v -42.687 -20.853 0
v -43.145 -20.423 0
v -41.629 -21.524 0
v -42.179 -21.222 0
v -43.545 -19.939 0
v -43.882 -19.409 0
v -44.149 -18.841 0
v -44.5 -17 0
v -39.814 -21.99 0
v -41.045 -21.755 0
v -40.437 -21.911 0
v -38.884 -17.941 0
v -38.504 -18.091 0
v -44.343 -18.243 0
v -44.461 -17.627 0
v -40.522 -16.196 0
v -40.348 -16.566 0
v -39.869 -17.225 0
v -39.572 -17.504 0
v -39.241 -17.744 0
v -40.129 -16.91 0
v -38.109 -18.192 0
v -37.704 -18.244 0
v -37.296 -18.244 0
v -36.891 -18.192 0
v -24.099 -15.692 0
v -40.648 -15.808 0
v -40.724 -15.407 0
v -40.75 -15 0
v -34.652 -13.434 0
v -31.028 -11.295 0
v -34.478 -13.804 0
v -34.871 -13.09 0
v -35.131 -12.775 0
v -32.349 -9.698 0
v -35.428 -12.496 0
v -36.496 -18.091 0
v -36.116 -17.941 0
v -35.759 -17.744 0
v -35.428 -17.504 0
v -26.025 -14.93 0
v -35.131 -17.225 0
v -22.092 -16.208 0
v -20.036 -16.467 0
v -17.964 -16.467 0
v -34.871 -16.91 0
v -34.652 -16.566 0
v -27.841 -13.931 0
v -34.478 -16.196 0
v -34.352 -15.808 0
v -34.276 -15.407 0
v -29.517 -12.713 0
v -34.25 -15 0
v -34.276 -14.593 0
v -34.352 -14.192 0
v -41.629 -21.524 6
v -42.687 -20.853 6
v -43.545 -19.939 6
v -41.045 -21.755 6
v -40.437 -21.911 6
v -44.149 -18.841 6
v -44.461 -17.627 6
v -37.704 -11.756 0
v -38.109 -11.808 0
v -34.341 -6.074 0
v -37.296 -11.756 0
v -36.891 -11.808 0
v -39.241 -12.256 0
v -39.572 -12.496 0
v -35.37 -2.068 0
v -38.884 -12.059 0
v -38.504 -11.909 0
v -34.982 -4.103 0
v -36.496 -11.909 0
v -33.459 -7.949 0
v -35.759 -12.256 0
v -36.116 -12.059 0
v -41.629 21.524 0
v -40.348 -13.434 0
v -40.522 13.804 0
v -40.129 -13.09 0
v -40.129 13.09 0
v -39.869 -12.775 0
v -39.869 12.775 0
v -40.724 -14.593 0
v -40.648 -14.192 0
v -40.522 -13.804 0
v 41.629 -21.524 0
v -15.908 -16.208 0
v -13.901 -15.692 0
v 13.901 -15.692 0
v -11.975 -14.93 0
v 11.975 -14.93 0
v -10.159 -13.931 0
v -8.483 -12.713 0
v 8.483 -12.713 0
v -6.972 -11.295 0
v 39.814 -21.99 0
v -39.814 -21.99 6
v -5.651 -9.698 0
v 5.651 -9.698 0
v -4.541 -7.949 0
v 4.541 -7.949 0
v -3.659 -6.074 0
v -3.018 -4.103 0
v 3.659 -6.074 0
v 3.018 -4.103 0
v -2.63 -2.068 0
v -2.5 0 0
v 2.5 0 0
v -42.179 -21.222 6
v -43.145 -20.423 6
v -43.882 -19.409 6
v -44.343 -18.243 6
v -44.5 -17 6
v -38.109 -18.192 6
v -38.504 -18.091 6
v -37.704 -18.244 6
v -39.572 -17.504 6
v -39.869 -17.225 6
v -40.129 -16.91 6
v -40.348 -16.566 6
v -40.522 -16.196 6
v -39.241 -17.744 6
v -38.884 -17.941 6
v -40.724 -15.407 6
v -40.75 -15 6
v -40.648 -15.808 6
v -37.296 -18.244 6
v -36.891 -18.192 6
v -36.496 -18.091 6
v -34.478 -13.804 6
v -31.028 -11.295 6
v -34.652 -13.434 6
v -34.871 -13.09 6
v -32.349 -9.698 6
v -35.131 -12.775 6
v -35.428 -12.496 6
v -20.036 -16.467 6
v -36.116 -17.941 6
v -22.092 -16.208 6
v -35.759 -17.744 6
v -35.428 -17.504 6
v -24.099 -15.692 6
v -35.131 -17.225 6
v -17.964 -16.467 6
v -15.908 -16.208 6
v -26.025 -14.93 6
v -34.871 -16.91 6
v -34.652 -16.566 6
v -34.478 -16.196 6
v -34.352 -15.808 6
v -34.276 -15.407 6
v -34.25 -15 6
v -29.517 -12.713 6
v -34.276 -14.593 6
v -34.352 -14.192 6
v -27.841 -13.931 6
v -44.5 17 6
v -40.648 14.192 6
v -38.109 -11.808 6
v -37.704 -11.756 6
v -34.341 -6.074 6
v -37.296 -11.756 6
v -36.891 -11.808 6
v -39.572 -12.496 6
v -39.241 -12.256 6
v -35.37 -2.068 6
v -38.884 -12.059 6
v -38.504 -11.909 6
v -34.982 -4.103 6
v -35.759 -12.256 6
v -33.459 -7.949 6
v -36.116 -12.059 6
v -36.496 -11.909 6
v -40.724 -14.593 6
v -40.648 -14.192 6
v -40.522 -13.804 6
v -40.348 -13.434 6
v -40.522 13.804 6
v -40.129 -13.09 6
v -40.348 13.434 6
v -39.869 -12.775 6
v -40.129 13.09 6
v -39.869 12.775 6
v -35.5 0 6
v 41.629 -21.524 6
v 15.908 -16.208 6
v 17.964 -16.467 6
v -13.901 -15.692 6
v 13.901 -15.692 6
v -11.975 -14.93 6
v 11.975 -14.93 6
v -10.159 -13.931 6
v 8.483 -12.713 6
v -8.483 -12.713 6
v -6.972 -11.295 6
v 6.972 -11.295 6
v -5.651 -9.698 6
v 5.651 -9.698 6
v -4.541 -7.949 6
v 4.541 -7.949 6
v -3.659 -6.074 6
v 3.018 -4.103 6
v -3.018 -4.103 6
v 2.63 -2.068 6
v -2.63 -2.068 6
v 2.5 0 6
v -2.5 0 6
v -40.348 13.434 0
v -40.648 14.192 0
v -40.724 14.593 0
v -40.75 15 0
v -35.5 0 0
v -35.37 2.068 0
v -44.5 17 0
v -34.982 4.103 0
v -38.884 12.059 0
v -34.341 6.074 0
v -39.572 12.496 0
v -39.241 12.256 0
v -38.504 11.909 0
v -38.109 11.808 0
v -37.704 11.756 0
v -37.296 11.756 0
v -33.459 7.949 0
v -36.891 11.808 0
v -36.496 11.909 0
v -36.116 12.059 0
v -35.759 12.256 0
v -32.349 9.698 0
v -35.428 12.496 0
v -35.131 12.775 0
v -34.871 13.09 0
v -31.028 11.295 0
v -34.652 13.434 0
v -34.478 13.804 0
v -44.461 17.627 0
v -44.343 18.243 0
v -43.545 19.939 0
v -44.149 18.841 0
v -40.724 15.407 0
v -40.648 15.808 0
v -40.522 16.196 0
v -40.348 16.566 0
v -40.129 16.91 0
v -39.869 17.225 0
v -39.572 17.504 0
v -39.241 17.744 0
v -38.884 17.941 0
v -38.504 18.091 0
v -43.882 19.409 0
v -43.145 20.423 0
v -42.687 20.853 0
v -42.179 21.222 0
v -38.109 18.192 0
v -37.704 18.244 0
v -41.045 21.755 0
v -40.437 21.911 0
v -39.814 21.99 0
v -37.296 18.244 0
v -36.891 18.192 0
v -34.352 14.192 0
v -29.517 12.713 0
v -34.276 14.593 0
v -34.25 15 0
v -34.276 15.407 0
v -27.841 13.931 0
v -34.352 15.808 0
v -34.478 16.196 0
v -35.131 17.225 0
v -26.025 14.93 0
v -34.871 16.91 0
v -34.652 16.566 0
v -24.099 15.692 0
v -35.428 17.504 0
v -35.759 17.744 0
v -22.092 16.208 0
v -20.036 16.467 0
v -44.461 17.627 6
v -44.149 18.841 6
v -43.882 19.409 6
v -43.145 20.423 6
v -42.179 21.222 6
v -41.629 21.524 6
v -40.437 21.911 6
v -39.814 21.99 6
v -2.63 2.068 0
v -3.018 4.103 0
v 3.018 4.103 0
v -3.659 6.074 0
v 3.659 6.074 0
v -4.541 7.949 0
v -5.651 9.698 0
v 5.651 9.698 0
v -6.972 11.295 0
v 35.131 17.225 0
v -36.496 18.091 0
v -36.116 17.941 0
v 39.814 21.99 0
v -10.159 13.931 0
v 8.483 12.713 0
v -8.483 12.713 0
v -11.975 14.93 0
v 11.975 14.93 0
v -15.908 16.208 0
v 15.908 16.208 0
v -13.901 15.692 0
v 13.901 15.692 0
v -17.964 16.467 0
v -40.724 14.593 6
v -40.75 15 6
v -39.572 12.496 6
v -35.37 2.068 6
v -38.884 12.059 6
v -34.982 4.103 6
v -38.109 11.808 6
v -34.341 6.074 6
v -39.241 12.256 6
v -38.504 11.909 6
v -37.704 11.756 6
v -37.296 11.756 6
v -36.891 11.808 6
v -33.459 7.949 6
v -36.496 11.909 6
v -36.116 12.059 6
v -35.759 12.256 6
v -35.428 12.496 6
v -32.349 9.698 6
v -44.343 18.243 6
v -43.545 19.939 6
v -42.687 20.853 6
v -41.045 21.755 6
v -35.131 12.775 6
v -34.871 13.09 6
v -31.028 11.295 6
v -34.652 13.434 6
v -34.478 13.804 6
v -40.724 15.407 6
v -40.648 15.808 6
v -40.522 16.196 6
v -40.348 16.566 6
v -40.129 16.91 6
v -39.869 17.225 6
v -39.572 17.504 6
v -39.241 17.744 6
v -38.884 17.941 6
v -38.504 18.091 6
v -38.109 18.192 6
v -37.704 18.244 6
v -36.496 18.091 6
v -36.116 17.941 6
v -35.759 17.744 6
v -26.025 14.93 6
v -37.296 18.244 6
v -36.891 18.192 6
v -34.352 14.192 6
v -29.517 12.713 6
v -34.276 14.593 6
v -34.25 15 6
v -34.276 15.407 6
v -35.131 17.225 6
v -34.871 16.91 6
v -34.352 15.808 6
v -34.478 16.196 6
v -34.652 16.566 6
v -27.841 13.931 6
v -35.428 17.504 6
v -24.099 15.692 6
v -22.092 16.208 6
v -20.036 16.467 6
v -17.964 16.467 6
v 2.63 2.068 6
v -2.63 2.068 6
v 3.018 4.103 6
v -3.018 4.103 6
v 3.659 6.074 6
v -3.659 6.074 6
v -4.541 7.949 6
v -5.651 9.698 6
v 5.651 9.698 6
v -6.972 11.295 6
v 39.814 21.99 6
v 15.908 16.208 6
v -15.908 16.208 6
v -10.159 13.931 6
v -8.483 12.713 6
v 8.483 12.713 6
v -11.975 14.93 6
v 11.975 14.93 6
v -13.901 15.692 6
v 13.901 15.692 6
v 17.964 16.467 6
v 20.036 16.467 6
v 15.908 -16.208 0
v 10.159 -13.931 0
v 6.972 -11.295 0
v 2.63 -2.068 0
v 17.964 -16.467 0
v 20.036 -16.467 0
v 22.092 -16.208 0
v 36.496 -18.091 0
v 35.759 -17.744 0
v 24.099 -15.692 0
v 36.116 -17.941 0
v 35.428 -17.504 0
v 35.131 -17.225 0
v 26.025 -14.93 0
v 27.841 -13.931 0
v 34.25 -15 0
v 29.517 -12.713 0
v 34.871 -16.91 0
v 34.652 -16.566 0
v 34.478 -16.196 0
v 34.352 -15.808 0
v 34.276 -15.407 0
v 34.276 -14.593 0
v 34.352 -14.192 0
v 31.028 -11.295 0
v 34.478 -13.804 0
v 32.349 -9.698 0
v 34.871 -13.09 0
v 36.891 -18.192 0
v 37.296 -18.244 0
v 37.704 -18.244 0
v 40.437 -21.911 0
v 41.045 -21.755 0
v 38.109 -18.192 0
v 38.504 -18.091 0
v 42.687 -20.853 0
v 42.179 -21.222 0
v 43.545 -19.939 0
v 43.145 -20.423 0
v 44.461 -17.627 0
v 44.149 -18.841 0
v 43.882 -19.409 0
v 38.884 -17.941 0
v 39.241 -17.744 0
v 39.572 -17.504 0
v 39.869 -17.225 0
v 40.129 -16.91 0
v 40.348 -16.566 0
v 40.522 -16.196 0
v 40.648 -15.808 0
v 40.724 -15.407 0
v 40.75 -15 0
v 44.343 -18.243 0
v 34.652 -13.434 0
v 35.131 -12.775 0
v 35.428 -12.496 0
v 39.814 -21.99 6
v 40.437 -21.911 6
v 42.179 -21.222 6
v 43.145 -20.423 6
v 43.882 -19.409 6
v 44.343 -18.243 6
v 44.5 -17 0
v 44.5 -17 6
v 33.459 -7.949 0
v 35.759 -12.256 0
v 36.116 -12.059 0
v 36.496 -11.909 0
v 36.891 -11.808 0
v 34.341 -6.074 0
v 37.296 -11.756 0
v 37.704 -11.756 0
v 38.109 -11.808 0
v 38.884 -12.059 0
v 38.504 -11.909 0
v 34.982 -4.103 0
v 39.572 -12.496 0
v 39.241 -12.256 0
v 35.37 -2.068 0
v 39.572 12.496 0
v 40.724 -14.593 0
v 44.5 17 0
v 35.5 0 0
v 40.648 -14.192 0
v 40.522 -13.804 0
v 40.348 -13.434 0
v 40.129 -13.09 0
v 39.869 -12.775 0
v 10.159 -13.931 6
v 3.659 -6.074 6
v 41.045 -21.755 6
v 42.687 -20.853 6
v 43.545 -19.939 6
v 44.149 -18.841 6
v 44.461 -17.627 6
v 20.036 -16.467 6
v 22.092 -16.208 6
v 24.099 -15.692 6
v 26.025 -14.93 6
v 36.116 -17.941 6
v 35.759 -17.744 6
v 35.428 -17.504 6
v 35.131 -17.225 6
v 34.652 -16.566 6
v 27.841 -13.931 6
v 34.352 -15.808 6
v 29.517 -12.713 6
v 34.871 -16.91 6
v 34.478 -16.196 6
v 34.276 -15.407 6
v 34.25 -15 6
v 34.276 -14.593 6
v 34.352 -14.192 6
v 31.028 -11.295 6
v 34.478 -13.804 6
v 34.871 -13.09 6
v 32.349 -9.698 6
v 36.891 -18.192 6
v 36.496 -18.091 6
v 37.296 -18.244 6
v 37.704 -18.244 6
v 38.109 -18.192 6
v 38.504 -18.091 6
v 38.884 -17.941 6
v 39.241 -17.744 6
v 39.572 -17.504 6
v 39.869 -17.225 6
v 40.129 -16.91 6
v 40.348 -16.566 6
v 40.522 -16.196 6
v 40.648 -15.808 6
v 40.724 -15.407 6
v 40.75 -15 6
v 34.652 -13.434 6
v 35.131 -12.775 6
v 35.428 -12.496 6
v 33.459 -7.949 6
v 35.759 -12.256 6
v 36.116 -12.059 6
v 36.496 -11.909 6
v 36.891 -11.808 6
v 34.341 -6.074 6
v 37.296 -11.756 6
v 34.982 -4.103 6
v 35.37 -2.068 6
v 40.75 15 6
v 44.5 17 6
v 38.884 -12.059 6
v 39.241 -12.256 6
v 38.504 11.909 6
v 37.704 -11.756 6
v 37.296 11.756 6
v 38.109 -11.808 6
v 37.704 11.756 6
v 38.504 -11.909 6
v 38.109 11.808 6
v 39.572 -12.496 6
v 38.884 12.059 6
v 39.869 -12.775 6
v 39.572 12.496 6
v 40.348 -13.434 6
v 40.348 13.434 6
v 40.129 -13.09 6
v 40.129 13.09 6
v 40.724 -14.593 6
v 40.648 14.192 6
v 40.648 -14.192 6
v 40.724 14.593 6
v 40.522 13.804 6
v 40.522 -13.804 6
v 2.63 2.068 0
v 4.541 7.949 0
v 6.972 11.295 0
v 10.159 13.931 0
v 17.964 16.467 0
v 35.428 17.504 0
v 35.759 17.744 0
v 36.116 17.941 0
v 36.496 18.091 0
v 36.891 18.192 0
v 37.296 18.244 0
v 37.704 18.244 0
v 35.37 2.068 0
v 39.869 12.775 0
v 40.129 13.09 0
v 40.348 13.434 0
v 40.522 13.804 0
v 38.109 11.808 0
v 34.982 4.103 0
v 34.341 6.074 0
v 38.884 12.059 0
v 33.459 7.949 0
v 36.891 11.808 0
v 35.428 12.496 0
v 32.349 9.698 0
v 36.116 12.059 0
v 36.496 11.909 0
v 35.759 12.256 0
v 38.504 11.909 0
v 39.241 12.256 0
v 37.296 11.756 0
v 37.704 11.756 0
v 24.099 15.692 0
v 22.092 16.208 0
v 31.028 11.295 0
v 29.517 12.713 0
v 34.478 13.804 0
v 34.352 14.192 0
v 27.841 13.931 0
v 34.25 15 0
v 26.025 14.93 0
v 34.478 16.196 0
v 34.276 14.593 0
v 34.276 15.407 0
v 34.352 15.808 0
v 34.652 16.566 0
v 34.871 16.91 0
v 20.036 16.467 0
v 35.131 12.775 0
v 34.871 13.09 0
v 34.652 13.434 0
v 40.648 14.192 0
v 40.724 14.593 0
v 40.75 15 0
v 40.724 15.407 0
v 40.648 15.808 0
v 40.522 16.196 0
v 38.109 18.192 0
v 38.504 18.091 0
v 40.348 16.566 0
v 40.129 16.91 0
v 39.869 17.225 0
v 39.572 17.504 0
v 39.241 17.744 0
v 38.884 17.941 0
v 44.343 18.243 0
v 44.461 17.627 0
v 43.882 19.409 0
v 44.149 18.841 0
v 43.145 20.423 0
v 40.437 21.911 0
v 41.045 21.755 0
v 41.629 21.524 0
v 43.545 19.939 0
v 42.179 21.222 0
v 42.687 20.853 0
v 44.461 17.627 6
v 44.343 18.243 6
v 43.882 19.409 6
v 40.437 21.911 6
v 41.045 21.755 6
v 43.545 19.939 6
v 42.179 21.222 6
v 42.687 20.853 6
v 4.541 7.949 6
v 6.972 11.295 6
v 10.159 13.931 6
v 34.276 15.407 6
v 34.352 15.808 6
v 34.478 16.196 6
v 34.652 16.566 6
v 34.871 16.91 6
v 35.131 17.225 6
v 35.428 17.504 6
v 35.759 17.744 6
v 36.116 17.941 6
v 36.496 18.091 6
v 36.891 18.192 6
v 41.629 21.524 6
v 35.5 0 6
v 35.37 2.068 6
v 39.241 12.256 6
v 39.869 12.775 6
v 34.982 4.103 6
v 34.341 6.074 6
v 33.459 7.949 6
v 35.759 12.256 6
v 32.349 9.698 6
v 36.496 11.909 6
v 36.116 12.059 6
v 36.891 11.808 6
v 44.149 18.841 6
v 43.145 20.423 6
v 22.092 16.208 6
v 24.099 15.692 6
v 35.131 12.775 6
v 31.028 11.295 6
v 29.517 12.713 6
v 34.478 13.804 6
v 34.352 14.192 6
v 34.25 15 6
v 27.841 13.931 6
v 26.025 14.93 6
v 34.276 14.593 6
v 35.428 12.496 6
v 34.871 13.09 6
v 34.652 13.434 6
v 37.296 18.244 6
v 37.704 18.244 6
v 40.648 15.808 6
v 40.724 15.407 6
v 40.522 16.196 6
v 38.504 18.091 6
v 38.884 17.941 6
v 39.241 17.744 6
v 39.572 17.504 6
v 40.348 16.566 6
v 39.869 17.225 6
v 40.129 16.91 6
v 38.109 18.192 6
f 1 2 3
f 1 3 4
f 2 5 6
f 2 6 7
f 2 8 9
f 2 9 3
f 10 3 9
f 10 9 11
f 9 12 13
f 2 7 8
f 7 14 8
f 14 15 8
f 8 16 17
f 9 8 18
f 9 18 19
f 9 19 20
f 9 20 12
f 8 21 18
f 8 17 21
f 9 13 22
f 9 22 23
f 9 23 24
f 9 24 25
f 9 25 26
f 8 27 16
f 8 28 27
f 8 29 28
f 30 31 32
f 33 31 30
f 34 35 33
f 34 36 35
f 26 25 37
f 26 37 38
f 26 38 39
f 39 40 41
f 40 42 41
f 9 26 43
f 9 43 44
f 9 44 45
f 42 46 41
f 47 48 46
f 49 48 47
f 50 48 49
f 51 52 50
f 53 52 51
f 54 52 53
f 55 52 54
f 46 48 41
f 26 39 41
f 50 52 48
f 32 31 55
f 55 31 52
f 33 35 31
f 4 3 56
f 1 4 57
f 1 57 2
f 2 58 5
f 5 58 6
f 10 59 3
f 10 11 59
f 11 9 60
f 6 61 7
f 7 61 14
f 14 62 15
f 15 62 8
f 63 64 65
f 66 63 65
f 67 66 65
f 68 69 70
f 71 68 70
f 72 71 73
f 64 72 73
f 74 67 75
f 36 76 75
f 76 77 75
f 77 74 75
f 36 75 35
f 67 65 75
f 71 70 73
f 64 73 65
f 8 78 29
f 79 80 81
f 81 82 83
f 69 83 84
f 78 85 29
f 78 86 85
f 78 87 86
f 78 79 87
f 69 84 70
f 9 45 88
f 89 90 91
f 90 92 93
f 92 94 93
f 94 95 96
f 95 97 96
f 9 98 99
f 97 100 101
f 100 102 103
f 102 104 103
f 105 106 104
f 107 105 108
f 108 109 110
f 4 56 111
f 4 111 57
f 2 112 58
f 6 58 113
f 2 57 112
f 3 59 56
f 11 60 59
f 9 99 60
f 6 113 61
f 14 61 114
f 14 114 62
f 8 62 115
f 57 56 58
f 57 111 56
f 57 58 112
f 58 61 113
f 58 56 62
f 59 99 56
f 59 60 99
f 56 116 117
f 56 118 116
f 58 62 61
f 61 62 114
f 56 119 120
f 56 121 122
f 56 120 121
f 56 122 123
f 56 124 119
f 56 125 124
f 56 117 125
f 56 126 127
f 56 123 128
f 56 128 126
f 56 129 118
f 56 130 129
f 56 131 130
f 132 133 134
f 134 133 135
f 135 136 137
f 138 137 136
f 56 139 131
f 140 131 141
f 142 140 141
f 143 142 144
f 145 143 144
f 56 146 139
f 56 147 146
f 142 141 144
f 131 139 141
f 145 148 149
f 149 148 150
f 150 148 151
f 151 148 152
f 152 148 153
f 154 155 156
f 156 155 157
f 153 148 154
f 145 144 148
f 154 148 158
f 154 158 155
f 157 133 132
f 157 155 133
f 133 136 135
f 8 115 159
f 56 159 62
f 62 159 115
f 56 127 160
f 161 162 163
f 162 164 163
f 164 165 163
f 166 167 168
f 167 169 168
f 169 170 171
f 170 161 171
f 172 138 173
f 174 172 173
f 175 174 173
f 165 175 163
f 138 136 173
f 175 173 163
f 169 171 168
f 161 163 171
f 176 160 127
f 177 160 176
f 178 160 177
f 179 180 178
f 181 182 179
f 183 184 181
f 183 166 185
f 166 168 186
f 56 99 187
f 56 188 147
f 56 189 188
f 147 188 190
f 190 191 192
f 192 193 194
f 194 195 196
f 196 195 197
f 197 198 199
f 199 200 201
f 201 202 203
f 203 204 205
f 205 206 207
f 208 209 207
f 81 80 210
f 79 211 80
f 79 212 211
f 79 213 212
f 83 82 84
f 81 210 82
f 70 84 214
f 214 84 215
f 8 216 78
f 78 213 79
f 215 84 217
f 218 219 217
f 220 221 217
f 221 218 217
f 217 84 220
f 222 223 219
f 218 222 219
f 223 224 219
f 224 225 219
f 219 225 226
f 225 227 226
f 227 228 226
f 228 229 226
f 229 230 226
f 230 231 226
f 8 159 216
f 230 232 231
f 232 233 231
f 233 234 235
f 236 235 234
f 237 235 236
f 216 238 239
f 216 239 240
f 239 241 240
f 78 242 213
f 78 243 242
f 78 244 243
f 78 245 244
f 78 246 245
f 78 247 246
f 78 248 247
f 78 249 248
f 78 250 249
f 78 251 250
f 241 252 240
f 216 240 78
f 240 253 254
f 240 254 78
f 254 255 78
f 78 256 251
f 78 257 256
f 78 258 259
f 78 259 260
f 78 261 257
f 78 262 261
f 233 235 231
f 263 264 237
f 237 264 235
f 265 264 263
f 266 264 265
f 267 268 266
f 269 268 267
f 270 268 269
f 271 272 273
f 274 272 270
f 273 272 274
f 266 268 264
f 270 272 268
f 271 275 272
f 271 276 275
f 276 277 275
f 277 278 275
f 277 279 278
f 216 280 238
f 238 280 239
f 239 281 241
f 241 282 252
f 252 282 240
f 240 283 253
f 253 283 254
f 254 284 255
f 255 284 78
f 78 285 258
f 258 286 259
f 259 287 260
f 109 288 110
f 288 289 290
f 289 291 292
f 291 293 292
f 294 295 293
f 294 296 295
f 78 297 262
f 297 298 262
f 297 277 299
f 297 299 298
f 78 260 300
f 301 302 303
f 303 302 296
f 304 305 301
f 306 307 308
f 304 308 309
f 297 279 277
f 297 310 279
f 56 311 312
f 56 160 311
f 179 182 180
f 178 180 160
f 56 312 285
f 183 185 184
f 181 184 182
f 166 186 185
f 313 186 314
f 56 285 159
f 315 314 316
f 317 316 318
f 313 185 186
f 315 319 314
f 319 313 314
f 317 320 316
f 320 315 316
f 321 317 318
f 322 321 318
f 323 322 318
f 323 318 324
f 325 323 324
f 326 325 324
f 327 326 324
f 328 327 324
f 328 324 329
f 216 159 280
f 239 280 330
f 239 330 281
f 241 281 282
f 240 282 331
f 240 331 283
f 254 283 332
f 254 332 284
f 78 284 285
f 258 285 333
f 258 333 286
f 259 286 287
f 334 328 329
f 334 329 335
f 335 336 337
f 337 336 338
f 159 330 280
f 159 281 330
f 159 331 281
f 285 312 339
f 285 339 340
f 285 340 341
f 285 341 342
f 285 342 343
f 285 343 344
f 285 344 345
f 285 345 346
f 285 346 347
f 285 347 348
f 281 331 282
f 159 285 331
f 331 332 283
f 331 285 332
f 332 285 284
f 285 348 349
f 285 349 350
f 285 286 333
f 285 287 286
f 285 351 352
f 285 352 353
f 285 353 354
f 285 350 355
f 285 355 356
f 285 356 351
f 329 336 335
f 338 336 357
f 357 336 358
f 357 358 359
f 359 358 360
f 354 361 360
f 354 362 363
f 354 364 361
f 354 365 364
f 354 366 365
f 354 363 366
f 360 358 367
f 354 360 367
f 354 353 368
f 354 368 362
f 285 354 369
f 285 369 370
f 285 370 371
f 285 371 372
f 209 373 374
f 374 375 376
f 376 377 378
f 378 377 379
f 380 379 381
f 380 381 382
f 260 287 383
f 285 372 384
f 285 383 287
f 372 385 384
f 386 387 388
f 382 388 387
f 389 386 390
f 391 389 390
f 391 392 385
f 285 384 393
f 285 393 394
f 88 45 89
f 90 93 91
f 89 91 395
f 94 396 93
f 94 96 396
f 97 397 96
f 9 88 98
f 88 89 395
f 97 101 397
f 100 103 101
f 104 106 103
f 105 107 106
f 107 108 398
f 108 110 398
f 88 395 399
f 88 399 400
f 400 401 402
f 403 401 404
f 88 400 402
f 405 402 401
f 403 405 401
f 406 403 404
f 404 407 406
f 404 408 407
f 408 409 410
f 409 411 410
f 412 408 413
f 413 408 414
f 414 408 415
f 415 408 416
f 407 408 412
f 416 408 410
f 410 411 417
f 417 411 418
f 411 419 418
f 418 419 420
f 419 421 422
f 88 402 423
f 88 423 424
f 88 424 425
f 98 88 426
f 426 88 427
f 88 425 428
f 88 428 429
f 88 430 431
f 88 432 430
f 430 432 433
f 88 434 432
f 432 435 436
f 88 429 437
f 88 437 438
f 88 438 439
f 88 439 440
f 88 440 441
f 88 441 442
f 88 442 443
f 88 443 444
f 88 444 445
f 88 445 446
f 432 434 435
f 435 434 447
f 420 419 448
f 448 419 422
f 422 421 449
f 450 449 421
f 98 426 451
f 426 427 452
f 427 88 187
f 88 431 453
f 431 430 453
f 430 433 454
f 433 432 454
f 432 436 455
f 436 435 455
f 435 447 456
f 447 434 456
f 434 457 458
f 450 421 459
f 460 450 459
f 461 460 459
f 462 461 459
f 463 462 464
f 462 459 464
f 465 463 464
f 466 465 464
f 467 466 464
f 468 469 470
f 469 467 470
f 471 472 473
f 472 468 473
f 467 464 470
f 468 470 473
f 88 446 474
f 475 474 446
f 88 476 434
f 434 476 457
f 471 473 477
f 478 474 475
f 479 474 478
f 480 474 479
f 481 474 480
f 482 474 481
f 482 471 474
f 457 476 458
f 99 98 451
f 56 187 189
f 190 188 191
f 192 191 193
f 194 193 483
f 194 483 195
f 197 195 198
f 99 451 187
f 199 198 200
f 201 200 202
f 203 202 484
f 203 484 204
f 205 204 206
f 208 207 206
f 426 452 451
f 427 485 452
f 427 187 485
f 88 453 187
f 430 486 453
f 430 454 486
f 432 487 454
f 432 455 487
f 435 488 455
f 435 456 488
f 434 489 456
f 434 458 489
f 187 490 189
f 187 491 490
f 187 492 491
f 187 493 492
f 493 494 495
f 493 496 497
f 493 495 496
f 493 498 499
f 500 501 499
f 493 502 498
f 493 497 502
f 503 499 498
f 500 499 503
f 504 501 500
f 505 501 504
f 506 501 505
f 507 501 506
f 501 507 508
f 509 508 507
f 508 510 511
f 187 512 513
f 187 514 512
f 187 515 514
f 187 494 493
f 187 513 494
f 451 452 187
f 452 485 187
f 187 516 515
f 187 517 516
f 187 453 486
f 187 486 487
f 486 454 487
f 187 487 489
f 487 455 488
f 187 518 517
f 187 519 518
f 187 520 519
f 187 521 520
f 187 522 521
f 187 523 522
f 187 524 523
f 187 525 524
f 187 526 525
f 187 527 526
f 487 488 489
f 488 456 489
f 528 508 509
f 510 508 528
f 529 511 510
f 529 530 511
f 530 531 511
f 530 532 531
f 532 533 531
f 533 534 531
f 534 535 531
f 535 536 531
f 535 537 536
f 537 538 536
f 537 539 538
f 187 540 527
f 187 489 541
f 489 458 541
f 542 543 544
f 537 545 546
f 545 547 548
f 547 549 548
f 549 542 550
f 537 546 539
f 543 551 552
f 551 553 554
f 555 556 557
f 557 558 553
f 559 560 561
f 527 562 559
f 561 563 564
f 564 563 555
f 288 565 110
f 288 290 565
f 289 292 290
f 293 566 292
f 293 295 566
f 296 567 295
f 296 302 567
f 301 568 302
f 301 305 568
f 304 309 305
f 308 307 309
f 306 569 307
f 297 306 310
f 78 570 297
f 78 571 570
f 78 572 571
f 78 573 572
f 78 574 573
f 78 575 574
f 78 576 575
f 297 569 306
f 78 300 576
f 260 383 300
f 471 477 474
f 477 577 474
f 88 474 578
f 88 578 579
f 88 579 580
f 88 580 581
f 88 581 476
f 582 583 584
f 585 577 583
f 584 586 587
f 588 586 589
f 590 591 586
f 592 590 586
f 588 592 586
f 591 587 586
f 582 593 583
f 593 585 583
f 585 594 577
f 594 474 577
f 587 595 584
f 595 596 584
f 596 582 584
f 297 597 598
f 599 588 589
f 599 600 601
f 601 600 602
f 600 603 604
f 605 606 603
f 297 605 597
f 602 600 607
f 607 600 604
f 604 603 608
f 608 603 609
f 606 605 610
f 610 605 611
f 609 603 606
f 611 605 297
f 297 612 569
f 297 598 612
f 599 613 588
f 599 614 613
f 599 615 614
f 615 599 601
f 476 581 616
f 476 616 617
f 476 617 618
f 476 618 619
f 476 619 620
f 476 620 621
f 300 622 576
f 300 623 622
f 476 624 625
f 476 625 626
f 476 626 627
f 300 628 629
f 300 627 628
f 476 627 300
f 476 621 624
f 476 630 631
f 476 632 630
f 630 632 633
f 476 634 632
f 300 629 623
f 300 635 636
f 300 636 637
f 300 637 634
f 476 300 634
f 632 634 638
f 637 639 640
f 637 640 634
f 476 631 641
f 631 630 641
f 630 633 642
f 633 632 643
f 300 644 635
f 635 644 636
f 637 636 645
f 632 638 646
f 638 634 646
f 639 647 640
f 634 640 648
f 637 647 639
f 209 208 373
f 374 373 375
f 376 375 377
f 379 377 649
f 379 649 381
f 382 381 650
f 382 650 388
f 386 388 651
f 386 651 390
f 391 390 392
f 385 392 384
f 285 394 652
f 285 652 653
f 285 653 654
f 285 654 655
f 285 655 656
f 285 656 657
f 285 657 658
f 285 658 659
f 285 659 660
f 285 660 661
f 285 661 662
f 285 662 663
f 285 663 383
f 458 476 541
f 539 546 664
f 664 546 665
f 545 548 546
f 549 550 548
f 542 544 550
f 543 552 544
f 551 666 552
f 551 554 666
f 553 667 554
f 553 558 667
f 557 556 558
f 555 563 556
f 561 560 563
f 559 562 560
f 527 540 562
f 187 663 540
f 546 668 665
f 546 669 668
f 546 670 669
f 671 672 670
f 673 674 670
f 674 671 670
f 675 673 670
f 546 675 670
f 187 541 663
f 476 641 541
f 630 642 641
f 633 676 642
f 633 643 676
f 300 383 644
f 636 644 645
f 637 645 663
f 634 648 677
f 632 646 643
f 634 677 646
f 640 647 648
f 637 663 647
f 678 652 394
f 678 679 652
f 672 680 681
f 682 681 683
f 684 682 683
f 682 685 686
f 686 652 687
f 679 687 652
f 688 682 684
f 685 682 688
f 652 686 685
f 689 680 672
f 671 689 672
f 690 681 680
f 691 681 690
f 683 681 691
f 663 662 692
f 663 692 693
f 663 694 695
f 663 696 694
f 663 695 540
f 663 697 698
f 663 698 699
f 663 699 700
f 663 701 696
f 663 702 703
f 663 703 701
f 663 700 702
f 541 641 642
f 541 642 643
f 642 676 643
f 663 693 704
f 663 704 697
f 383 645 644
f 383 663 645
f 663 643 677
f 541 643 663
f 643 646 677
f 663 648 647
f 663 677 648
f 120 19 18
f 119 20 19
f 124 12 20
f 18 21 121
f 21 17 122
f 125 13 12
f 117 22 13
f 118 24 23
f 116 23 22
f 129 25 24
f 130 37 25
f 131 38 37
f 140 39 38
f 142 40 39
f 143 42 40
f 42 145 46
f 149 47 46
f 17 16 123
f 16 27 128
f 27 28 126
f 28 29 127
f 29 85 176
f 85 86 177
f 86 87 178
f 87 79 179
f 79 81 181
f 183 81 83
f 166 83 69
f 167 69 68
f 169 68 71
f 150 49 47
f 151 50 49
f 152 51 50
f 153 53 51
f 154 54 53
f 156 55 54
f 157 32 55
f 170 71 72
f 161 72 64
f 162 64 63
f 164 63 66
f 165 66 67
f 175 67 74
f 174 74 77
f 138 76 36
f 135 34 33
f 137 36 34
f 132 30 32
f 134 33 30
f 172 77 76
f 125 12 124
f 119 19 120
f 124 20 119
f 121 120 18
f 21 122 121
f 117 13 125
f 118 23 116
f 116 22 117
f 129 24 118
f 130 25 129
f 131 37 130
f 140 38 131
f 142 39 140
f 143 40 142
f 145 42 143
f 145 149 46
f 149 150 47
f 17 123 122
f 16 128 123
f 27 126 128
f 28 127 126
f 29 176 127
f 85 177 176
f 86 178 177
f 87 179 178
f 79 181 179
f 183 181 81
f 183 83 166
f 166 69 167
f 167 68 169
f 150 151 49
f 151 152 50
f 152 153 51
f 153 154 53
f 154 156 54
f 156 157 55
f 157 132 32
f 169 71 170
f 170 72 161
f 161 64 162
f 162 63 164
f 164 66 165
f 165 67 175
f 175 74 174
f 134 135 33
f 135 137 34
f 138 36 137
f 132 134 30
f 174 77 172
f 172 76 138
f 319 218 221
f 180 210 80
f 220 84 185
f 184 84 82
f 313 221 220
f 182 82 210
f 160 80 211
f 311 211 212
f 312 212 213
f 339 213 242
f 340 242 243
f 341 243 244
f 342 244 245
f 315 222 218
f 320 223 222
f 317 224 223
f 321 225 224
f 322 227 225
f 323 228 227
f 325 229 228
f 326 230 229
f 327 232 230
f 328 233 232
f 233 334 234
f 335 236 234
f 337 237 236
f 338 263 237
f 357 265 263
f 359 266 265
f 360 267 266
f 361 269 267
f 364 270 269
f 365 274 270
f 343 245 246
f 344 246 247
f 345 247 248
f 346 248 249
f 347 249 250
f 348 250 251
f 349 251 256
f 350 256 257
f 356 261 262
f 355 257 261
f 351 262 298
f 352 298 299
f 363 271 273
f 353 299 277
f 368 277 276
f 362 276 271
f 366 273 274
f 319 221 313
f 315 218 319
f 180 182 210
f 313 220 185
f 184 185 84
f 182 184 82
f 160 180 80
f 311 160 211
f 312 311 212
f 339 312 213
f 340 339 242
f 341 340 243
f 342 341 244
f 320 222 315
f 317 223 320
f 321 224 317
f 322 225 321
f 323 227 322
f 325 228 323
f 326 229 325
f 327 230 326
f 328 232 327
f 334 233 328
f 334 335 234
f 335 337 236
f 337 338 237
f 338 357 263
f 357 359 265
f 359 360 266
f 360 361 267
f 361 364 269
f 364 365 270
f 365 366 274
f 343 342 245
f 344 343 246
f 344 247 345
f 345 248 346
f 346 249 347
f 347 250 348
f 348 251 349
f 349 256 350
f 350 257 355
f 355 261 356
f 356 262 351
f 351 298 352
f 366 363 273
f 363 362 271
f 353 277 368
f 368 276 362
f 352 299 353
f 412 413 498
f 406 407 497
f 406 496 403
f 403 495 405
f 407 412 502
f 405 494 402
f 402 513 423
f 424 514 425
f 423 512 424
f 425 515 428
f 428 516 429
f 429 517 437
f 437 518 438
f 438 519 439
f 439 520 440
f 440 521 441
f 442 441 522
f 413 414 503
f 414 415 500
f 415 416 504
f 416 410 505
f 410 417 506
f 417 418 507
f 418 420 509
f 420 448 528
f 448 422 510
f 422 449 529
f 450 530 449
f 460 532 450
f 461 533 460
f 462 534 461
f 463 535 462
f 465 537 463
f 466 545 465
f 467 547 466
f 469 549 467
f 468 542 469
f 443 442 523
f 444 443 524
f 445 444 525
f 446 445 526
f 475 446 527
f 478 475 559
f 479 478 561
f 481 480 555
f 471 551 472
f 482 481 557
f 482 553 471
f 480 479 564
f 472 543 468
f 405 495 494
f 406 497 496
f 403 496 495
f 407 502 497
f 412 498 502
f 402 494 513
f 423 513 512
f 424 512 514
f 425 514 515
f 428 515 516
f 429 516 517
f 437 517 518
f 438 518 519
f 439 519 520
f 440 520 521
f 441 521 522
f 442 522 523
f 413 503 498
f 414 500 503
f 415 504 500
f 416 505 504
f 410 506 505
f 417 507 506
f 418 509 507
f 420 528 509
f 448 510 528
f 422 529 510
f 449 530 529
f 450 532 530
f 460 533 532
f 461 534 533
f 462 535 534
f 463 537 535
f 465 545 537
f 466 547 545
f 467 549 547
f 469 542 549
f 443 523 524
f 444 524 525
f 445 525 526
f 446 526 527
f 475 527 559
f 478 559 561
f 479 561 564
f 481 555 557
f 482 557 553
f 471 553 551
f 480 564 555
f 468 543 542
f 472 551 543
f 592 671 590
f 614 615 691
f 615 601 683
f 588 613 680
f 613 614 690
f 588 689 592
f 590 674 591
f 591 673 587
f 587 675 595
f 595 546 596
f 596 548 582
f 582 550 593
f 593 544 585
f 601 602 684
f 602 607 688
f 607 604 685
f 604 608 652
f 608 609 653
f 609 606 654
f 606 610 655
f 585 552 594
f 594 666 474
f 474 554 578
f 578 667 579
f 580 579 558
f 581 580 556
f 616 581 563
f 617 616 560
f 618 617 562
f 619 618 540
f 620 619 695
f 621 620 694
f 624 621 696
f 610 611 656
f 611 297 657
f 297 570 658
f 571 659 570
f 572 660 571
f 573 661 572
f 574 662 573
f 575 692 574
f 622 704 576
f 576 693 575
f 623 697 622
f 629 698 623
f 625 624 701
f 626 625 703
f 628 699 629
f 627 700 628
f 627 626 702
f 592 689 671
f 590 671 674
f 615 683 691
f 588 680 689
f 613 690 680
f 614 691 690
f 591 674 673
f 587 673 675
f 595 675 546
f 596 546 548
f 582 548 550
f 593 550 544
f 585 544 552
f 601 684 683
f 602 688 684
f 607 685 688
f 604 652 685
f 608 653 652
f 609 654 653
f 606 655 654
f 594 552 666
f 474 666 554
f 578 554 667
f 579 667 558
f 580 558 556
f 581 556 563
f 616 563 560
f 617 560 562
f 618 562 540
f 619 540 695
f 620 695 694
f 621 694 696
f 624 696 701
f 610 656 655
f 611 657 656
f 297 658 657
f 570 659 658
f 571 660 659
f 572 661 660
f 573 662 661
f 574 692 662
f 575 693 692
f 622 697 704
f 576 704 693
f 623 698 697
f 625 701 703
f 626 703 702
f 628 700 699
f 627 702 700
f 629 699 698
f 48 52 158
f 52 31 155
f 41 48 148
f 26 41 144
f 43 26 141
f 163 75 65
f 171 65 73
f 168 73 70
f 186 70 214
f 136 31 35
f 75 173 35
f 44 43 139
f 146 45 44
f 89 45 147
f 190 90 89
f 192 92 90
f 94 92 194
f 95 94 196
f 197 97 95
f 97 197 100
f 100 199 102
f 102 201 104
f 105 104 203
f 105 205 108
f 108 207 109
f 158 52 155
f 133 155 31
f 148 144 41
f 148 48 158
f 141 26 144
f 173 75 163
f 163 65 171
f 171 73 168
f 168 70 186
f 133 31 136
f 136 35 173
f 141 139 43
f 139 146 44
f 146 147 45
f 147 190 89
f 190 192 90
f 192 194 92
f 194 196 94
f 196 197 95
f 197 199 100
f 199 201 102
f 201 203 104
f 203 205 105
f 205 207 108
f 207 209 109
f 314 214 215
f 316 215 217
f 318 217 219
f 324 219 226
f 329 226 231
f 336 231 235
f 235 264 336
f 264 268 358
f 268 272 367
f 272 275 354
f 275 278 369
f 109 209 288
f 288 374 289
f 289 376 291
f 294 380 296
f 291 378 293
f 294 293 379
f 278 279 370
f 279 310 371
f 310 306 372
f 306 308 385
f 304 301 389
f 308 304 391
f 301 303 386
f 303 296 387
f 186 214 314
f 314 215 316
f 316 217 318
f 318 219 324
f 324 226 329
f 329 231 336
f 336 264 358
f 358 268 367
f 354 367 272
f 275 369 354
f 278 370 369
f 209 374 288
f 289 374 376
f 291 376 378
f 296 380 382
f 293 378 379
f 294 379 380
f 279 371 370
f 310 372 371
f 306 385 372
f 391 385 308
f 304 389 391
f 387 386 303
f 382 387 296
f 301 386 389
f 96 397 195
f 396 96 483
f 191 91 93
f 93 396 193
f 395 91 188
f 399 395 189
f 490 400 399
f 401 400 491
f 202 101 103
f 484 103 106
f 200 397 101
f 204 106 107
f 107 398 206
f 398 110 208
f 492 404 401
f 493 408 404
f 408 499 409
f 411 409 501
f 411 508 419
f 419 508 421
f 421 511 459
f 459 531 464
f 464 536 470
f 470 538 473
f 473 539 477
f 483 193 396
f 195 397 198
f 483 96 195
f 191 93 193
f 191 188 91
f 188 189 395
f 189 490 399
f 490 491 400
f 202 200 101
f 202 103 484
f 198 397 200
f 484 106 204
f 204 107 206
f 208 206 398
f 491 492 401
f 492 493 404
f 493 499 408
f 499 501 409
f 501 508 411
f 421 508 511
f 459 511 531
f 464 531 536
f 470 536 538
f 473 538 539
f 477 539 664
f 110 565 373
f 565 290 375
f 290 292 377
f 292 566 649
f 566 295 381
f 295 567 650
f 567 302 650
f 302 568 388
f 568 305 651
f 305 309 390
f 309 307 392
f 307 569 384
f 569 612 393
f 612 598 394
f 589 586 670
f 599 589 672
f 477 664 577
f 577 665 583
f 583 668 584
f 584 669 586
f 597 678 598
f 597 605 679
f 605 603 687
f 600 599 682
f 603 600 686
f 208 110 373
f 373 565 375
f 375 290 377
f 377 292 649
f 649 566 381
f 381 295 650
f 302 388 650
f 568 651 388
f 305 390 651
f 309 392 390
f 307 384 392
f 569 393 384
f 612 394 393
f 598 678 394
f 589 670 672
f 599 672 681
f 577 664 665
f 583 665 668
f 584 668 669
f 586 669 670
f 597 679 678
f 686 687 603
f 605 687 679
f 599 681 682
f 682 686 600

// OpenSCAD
$fn = 50;

difference() {
	union() {
		hull() {
			translate(v = [-39.5, 17.0, 0]) {
				cylinder(h = 6, r = 5);
			}
			translate(v = [39.5, 17.0, 0]) {
				cylinder(h = 6, r = 5);
			}
			translate(v = [-39.5, -17.0, 0]) {
				cylinder(h = 6, r = 5);
			}
			translate(v = [39.5, -17.0, 0]) {
				cylinder(h = 6, r = 5);
			}
		}
	}
	union() {
		translate(v = [-37.5, -15.0, -100.0]) {
			cylinder(h = 200, r = 3.25);
		}
		translate(v = [-37.5, 15.0, -100.0]) {
			cylinder(h = 200, r = 3.25);
		}
		translate(v = [37.5, -15.0, -100.0]) {
			cylinder(h = 200, r = 3.25);
		}
		translate(v = [37.5, 15.0, -100.0]) {
			cylinder(h = 200, r = 3.25);
		}
		translate(v = [-37.5, -15.0, -100.0]) {
			cylinder(h = 200, r = 1.8);
		}
		translate(v = [-37.5, 15.0, -100.0]) {
			cylinder(h = 200, r = 1.8);
		}
		translate(v = [37.5, -15.0, -100.0]) {
			cylinder(h = 200, r = 1.8);
		}
		translate(v = [37.5, 15.0, -100.0]) {
			cylinder(h = 200, r = 1.8);
		}
		translate(v = [-19.0, 0, 0.0]) {
			cylinder(h = 6, r = 16.5);
		}
		translate(v = [19.0, 0, 0.0]) {
			cylinder(h = 6, r = 16.5);
		}
	}
}
